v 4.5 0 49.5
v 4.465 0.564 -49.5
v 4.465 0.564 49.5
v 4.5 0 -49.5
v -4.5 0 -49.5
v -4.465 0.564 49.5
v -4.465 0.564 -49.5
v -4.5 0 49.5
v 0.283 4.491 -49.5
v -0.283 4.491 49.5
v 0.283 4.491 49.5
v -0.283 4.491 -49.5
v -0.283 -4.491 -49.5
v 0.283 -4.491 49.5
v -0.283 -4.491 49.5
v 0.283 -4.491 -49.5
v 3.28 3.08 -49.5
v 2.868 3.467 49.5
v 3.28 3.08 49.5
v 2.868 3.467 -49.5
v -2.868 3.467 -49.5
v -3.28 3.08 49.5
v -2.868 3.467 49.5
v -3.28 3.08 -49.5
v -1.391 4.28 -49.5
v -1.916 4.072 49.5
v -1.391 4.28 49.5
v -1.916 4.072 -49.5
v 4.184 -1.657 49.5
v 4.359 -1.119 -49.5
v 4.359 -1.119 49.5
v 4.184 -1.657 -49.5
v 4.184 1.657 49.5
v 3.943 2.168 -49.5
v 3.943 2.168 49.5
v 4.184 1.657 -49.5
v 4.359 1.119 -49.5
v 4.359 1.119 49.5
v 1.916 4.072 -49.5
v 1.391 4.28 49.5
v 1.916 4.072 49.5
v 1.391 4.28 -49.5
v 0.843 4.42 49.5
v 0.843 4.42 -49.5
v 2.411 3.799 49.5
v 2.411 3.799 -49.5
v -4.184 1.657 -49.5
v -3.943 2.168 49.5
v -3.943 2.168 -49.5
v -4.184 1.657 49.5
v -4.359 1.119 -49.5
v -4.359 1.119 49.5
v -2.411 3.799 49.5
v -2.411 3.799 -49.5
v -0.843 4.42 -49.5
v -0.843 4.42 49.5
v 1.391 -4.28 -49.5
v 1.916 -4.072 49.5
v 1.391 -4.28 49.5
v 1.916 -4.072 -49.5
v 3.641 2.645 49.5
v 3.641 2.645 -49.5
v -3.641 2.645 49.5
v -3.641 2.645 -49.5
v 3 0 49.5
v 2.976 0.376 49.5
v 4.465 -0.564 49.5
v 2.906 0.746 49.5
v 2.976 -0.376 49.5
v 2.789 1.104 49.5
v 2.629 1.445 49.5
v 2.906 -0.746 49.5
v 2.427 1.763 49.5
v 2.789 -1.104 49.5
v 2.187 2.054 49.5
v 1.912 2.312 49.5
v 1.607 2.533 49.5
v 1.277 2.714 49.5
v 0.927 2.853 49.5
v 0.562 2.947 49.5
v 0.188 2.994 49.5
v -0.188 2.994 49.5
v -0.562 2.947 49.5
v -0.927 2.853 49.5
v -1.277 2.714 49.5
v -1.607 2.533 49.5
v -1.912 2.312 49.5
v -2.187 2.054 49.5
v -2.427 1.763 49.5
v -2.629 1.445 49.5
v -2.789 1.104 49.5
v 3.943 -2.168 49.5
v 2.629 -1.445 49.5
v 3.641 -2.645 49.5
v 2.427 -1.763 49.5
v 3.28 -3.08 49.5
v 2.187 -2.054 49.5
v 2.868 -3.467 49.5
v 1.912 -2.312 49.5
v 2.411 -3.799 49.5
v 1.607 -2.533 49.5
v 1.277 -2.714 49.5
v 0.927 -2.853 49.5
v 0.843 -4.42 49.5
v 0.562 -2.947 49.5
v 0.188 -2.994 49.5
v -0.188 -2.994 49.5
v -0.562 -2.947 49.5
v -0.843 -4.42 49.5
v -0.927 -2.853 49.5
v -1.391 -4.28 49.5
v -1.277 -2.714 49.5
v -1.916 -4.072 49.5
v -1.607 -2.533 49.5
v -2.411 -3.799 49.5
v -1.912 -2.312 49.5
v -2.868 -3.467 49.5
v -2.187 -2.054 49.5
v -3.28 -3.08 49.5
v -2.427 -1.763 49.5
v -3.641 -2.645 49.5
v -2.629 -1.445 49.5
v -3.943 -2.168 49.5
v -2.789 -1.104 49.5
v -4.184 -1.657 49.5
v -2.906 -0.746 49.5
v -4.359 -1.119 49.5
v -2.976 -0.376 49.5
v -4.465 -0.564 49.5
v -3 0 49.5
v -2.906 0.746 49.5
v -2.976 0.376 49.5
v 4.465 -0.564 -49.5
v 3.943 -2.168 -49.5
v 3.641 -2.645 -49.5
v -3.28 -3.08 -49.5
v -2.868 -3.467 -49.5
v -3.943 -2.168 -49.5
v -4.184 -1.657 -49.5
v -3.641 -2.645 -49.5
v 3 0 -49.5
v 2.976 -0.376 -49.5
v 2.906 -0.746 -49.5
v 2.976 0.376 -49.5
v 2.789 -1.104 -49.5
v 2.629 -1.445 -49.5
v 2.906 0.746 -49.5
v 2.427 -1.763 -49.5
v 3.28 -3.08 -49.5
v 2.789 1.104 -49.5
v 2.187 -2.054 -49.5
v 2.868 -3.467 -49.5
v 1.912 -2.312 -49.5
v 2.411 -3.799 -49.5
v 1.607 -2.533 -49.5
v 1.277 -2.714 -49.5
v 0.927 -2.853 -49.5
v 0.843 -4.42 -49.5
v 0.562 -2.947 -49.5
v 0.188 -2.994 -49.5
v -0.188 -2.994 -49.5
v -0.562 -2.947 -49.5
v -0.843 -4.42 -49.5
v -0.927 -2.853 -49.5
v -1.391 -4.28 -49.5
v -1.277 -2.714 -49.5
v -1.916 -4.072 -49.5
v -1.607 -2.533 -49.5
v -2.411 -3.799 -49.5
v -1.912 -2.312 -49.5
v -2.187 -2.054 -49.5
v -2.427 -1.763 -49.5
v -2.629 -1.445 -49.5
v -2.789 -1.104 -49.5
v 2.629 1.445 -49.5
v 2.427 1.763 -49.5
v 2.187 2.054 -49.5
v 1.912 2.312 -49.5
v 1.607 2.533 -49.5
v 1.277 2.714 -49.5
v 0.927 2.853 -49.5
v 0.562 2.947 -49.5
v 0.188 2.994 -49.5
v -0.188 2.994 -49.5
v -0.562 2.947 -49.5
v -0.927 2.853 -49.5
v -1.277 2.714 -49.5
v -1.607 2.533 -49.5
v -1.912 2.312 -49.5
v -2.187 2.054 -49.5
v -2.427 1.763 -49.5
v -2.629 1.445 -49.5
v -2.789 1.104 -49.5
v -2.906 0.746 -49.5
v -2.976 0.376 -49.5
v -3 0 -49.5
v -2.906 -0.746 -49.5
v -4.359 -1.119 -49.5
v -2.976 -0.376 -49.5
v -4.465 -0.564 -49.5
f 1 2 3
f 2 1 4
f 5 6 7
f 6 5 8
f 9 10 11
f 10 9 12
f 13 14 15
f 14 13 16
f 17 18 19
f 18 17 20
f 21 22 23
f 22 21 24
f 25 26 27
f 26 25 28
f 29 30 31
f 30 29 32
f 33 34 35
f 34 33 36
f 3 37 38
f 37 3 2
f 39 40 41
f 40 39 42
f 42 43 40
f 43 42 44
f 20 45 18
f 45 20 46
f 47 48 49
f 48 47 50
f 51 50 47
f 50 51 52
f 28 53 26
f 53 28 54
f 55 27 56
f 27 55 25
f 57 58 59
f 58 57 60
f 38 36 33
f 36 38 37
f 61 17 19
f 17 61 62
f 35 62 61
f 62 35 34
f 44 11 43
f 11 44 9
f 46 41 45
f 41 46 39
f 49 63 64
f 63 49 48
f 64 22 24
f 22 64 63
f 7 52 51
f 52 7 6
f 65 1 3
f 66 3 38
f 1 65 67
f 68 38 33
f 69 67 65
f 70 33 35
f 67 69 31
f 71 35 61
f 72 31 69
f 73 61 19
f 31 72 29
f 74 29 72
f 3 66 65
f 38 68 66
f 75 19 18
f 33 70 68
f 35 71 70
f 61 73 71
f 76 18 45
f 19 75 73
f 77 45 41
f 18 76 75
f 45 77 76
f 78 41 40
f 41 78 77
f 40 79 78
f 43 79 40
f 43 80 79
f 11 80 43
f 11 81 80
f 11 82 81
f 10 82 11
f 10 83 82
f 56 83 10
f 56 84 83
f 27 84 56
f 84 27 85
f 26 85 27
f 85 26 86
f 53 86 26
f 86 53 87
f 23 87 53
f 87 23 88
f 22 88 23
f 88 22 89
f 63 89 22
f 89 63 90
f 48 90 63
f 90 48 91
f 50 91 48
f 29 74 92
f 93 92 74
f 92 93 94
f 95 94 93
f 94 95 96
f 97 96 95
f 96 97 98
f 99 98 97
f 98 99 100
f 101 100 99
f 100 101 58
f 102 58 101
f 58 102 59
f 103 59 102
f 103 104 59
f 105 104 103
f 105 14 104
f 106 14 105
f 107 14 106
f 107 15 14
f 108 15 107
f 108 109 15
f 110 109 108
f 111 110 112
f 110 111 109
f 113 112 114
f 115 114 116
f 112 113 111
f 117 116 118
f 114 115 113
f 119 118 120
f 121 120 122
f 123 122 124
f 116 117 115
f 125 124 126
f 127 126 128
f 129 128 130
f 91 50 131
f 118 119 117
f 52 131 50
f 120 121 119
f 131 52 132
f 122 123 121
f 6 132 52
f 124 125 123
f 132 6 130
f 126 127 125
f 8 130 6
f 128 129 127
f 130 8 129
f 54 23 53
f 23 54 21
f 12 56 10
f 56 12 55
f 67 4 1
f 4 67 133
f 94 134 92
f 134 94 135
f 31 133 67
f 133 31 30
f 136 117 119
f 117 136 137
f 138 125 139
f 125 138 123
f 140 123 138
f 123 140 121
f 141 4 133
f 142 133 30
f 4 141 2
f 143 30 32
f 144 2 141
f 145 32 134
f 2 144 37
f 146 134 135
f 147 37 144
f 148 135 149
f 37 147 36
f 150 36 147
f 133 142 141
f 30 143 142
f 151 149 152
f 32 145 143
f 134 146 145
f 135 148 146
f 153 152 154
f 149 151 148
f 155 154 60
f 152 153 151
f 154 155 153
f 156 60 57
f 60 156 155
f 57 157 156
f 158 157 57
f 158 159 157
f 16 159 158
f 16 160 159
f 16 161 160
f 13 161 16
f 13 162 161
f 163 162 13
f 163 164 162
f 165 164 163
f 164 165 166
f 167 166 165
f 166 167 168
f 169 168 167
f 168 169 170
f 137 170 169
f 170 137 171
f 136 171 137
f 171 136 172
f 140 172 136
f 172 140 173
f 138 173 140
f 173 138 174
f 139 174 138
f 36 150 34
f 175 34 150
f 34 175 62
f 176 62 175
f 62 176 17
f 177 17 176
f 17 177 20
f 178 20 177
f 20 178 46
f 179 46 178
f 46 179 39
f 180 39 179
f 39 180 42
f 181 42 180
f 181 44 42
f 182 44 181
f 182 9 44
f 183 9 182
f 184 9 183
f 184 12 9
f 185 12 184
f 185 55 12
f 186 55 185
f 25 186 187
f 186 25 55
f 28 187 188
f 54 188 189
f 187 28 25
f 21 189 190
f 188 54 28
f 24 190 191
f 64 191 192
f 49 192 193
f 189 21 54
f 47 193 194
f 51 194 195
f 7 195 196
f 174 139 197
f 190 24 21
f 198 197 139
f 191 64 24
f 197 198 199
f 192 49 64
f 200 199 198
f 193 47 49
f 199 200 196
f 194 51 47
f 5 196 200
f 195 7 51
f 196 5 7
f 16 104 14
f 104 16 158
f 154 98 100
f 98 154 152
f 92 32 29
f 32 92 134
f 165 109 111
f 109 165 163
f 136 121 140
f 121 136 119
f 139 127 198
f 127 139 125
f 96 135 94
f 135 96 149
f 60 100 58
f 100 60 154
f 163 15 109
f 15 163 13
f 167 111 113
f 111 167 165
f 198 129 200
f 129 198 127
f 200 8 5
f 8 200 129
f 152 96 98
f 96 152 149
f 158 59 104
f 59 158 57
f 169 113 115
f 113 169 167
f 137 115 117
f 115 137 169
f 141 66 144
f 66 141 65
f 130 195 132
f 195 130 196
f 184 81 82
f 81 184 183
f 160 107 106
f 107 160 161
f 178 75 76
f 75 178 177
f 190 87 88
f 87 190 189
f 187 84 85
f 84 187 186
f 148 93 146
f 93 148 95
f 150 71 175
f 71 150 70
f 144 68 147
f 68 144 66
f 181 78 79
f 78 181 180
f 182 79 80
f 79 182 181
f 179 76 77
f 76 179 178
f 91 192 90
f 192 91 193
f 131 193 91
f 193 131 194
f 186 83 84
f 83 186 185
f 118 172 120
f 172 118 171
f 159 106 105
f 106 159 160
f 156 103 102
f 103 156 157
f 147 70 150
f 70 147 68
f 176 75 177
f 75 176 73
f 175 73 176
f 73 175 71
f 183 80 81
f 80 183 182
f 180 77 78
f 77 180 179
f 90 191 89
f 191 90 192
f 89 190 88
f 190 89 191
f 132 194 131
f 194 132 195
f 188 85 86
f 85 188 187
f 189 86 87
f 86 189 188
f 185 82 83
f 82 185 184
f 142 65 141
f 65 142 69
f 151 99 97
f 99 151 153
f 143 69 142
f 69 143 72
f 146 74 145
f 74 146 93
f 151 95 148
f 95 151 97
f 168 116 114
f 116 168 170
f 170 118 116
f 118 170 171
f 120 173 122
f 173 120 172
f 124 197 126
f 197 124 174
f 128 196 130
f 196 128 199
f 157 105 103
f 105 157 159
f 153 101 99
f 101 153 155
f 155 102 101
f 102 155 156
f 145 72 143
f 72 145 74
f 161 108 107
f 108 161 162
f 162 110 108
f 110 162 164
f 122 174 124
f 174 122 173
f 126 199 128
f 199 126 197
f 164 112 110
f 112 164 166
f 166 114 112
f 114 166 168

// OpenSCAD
$fn = 50;


difference() {
	union() {
		translate(v = [0, 0, -49.5000000000]) {
			cylinder(h = 99, r = 4.5000000000);
		}
	}
	union() {
		translate(v = [0, 0, -100.0000000000]) {
			cylinder(h = 200, r = 3);
		}
	}
}
